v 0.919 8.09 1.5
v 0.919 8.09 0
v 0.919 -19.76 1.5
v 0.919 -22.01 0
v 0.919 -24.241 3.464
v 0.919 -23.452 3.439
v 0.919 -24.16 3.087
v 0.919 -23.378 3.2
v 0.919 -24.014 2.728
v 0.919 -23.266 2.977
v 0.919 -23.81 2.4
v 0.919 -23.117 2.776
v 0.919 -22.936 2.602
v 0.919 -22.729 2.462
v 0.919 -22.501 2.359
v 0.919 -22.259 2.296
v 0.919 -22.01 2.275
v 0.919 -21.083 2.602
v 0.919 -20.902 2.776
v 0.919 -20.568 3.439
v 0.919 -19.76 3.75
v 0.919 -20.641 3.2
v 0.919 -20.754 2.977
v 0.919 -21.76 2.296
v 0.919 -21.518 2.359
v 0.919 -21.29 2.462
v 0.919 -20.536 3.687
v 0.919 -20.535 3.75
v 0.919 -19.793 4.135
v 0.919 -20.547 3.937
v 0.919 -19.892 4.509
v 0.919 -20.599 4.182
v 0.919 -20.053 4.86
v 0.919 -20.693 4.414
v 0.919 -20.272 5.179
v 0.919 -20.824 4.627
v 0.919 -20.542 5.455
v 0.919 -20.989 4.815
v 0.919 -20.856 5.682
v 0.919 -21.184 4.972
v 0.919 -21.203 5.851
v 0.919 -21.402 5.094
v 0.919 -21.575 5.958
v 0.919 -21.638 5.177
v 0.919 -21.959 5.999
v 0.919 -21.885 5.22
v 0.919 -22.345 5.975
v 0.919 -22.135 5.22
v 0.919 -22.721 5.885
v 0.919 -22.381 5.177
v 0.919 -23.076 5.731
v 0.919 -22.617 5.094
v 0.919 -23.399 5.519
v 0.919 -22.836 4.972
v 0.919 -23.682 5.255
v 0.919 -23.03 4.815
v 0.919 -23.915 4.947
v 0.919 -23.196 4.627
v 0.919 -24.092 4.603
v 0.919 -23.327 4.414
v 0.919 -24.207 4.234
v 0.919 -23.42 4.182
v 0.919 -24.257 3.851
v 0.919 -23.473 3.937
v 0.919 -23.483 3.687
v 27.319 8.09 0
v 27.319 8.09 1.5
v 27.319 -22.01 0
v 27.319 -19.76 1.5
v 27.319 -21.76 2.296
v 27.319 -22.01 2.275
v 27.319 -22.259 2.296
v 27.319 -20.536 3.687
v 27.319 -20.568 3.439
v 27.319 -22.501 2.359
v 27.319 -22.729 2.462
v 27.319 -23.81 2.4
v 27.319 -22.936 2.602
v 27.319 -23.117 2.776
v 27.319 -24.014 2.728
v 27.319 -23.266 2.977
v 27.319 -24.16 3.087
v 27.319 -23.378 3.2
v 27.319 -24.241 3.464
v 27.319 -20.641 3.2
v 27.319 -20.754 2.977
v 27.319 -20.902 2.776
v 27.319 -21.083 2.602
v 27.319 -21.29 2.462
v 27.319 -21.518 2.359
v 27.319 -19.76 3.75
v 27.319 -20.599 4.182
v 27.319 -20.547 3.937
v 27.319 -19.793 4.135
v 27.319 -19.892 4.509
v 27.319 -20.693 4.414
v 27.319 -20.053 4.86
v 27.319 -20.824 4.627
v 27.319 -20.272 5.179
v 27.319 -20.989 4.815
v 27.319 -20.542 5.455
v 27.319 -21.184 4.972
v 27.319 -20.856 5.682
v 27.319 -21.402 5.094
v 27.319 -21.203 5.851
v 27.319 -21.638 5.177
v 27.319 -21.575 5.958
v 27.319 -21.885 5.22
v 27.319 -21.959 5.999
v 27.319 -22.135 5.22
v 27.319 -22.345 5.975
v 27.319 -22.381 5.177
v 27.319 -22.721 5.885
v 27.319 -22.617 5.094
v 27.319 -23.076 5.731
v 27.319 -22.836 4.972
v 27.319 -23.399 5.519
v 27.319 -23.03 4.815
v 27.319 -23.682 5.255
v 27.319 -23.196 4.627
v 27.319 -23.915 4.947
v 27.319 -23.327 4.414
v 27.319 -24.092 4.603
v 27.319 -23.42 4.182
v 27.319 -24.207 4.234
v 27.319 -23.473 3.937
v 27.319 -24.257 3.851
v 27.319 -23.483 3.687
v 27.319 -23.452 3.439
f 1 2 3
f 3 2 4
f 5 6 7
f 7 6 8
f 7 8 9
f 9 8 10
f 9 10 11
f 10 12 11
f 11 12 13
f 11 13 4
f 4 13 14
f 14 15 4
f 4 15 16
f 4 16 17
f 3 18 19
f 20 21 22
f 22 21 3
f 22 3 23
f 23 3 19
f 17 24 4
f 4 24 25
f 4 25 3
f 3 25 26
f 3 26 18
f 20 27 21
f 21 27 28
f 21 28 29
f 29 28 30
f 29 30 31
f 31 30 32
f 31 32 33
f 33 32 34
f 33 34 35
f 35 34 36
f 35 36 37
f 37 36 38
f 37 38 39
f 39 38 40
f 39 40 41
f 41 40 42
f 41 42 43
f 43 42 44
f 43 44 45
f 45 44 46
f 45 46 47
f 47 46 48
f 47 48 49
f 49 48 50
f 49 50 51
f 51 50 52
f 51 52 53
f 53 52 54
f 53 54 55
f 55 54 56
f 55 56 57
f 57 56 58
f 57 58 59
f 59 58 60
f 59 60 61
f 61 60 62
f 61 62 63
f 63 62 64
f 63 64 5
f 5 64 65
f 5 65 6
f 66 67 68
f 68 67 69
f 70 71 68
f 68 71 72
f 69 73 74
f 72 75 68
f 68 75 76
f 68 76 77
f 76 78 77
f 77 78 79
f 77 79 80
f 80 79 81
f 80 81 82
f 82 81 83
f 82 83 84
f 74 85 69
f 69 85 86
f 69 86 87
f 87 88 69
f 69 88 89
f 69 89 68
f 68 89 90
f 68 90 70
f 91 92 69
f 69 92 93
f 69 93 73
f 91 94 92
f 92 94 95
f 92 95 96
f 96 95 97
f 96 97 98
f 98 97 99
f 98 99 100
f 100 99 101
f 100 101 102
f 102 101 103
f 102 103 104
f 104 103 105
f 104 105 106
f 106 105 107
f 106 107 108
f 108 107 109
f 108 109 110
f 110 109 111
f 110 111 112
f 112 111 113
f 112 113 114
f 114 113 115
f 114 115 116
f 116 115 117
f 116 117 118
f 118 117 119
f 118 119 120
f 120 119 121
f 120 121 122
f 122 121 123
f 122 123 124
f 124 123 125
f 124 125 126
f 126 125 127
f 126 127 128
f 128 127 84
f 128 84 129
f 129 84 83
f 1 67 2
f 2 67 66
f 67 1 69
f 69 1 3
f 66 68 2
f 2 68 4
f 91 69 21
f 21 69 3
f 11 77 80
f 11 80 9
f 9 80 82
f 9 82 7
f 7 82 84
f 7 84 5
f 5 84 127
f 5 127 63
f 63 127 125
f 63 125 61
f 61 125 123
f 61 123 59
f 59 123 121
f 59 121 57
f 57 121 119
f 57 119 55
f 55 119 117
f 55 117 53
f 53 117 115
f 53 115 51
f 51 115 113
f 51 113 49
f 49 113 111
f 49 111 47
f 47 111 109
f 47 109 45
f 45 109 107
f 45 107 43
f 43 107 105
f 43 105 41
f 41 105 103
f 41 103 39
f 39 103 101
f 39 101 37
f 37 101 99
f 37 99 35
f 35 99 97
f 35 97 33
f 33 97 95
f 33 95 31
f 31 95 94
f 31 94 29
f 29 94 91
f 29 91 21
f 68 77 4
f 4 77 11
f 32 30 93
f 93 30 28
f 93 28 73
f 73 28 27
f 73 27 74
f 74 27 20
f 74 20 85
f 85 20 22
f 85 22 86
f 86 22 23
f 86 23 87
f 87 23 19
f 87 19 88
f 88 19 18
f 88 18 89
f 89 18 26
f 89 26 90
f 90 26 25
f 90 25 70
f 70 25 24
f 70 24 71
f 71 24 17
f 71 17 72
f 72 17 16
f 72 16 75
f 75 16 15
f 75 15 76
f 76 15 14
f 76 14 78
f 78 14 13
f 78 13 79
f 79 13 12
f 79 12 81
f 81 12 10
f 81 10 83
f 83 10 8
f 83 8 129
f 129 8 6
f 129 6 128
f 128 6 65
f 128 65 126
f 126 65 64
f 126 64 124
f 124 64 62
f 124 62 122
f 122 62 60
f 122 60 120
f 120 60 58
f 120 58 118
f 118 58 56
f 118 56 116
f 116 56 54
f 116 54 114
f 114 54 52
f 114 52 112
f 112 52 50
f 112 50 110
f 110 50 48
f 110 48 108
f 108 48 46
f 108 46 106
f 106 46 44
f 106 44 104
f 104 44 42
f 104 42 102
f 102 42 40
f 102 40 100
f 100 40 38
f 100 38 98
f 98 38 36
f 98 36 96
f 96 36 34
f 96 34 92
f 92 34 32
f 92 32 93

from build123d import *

# Parameters (mm, degrees)
CROQUIS1_W              = 26.4
CROQUIS1_H              = 30.1
SALIENTE_EXTRUIR1_DEPTH = 1.5
CROQUIS3_R              = 1.475
SALIENTE_EXTRUIR3_DEPTH = 26.4


with BuildPart() as part:
    # Croquis1 → Saliente-Extruir1 (new body)
    with BuildSketch(Plane.XY):
        with Locations((14.119367589, -6.959881423)):
            Rectangle(CROQUIS1_W, CROQUIS1_H)
    extrude(amount=SALIENTE_EXTRUIR1_DEPTH)

    # Croquis3 → Saliente-Extruir3 (add)
    with BuildSketch(Plane(origin=(27.319367589, 0, 0), x_dir=(0, 0, -1), z_dir=(1, 0, 0))):
        with BuildLine():
            Line((0, -22.009881423), (-2.400129029, -23.809709392))
            ThreePointArc((-2.400129029, -23.809709392), (-5.88456292, -22.721048598), (-3.75, -19.759612628))
            Line((-3.75, -19.759612628), (-1.5, -19.759612628))
            Line((-1.5, -19.759612628), (0, -22.009881423))
        make_face()
        with Locations((-3.75, -22.009612628)):
            Circle(CROQUIS3_R, mode=Mode.SUBTRACT)
    extrude(amount=-SALIENTE_EXTRUIR3_DEPTH)


solid = part.part
